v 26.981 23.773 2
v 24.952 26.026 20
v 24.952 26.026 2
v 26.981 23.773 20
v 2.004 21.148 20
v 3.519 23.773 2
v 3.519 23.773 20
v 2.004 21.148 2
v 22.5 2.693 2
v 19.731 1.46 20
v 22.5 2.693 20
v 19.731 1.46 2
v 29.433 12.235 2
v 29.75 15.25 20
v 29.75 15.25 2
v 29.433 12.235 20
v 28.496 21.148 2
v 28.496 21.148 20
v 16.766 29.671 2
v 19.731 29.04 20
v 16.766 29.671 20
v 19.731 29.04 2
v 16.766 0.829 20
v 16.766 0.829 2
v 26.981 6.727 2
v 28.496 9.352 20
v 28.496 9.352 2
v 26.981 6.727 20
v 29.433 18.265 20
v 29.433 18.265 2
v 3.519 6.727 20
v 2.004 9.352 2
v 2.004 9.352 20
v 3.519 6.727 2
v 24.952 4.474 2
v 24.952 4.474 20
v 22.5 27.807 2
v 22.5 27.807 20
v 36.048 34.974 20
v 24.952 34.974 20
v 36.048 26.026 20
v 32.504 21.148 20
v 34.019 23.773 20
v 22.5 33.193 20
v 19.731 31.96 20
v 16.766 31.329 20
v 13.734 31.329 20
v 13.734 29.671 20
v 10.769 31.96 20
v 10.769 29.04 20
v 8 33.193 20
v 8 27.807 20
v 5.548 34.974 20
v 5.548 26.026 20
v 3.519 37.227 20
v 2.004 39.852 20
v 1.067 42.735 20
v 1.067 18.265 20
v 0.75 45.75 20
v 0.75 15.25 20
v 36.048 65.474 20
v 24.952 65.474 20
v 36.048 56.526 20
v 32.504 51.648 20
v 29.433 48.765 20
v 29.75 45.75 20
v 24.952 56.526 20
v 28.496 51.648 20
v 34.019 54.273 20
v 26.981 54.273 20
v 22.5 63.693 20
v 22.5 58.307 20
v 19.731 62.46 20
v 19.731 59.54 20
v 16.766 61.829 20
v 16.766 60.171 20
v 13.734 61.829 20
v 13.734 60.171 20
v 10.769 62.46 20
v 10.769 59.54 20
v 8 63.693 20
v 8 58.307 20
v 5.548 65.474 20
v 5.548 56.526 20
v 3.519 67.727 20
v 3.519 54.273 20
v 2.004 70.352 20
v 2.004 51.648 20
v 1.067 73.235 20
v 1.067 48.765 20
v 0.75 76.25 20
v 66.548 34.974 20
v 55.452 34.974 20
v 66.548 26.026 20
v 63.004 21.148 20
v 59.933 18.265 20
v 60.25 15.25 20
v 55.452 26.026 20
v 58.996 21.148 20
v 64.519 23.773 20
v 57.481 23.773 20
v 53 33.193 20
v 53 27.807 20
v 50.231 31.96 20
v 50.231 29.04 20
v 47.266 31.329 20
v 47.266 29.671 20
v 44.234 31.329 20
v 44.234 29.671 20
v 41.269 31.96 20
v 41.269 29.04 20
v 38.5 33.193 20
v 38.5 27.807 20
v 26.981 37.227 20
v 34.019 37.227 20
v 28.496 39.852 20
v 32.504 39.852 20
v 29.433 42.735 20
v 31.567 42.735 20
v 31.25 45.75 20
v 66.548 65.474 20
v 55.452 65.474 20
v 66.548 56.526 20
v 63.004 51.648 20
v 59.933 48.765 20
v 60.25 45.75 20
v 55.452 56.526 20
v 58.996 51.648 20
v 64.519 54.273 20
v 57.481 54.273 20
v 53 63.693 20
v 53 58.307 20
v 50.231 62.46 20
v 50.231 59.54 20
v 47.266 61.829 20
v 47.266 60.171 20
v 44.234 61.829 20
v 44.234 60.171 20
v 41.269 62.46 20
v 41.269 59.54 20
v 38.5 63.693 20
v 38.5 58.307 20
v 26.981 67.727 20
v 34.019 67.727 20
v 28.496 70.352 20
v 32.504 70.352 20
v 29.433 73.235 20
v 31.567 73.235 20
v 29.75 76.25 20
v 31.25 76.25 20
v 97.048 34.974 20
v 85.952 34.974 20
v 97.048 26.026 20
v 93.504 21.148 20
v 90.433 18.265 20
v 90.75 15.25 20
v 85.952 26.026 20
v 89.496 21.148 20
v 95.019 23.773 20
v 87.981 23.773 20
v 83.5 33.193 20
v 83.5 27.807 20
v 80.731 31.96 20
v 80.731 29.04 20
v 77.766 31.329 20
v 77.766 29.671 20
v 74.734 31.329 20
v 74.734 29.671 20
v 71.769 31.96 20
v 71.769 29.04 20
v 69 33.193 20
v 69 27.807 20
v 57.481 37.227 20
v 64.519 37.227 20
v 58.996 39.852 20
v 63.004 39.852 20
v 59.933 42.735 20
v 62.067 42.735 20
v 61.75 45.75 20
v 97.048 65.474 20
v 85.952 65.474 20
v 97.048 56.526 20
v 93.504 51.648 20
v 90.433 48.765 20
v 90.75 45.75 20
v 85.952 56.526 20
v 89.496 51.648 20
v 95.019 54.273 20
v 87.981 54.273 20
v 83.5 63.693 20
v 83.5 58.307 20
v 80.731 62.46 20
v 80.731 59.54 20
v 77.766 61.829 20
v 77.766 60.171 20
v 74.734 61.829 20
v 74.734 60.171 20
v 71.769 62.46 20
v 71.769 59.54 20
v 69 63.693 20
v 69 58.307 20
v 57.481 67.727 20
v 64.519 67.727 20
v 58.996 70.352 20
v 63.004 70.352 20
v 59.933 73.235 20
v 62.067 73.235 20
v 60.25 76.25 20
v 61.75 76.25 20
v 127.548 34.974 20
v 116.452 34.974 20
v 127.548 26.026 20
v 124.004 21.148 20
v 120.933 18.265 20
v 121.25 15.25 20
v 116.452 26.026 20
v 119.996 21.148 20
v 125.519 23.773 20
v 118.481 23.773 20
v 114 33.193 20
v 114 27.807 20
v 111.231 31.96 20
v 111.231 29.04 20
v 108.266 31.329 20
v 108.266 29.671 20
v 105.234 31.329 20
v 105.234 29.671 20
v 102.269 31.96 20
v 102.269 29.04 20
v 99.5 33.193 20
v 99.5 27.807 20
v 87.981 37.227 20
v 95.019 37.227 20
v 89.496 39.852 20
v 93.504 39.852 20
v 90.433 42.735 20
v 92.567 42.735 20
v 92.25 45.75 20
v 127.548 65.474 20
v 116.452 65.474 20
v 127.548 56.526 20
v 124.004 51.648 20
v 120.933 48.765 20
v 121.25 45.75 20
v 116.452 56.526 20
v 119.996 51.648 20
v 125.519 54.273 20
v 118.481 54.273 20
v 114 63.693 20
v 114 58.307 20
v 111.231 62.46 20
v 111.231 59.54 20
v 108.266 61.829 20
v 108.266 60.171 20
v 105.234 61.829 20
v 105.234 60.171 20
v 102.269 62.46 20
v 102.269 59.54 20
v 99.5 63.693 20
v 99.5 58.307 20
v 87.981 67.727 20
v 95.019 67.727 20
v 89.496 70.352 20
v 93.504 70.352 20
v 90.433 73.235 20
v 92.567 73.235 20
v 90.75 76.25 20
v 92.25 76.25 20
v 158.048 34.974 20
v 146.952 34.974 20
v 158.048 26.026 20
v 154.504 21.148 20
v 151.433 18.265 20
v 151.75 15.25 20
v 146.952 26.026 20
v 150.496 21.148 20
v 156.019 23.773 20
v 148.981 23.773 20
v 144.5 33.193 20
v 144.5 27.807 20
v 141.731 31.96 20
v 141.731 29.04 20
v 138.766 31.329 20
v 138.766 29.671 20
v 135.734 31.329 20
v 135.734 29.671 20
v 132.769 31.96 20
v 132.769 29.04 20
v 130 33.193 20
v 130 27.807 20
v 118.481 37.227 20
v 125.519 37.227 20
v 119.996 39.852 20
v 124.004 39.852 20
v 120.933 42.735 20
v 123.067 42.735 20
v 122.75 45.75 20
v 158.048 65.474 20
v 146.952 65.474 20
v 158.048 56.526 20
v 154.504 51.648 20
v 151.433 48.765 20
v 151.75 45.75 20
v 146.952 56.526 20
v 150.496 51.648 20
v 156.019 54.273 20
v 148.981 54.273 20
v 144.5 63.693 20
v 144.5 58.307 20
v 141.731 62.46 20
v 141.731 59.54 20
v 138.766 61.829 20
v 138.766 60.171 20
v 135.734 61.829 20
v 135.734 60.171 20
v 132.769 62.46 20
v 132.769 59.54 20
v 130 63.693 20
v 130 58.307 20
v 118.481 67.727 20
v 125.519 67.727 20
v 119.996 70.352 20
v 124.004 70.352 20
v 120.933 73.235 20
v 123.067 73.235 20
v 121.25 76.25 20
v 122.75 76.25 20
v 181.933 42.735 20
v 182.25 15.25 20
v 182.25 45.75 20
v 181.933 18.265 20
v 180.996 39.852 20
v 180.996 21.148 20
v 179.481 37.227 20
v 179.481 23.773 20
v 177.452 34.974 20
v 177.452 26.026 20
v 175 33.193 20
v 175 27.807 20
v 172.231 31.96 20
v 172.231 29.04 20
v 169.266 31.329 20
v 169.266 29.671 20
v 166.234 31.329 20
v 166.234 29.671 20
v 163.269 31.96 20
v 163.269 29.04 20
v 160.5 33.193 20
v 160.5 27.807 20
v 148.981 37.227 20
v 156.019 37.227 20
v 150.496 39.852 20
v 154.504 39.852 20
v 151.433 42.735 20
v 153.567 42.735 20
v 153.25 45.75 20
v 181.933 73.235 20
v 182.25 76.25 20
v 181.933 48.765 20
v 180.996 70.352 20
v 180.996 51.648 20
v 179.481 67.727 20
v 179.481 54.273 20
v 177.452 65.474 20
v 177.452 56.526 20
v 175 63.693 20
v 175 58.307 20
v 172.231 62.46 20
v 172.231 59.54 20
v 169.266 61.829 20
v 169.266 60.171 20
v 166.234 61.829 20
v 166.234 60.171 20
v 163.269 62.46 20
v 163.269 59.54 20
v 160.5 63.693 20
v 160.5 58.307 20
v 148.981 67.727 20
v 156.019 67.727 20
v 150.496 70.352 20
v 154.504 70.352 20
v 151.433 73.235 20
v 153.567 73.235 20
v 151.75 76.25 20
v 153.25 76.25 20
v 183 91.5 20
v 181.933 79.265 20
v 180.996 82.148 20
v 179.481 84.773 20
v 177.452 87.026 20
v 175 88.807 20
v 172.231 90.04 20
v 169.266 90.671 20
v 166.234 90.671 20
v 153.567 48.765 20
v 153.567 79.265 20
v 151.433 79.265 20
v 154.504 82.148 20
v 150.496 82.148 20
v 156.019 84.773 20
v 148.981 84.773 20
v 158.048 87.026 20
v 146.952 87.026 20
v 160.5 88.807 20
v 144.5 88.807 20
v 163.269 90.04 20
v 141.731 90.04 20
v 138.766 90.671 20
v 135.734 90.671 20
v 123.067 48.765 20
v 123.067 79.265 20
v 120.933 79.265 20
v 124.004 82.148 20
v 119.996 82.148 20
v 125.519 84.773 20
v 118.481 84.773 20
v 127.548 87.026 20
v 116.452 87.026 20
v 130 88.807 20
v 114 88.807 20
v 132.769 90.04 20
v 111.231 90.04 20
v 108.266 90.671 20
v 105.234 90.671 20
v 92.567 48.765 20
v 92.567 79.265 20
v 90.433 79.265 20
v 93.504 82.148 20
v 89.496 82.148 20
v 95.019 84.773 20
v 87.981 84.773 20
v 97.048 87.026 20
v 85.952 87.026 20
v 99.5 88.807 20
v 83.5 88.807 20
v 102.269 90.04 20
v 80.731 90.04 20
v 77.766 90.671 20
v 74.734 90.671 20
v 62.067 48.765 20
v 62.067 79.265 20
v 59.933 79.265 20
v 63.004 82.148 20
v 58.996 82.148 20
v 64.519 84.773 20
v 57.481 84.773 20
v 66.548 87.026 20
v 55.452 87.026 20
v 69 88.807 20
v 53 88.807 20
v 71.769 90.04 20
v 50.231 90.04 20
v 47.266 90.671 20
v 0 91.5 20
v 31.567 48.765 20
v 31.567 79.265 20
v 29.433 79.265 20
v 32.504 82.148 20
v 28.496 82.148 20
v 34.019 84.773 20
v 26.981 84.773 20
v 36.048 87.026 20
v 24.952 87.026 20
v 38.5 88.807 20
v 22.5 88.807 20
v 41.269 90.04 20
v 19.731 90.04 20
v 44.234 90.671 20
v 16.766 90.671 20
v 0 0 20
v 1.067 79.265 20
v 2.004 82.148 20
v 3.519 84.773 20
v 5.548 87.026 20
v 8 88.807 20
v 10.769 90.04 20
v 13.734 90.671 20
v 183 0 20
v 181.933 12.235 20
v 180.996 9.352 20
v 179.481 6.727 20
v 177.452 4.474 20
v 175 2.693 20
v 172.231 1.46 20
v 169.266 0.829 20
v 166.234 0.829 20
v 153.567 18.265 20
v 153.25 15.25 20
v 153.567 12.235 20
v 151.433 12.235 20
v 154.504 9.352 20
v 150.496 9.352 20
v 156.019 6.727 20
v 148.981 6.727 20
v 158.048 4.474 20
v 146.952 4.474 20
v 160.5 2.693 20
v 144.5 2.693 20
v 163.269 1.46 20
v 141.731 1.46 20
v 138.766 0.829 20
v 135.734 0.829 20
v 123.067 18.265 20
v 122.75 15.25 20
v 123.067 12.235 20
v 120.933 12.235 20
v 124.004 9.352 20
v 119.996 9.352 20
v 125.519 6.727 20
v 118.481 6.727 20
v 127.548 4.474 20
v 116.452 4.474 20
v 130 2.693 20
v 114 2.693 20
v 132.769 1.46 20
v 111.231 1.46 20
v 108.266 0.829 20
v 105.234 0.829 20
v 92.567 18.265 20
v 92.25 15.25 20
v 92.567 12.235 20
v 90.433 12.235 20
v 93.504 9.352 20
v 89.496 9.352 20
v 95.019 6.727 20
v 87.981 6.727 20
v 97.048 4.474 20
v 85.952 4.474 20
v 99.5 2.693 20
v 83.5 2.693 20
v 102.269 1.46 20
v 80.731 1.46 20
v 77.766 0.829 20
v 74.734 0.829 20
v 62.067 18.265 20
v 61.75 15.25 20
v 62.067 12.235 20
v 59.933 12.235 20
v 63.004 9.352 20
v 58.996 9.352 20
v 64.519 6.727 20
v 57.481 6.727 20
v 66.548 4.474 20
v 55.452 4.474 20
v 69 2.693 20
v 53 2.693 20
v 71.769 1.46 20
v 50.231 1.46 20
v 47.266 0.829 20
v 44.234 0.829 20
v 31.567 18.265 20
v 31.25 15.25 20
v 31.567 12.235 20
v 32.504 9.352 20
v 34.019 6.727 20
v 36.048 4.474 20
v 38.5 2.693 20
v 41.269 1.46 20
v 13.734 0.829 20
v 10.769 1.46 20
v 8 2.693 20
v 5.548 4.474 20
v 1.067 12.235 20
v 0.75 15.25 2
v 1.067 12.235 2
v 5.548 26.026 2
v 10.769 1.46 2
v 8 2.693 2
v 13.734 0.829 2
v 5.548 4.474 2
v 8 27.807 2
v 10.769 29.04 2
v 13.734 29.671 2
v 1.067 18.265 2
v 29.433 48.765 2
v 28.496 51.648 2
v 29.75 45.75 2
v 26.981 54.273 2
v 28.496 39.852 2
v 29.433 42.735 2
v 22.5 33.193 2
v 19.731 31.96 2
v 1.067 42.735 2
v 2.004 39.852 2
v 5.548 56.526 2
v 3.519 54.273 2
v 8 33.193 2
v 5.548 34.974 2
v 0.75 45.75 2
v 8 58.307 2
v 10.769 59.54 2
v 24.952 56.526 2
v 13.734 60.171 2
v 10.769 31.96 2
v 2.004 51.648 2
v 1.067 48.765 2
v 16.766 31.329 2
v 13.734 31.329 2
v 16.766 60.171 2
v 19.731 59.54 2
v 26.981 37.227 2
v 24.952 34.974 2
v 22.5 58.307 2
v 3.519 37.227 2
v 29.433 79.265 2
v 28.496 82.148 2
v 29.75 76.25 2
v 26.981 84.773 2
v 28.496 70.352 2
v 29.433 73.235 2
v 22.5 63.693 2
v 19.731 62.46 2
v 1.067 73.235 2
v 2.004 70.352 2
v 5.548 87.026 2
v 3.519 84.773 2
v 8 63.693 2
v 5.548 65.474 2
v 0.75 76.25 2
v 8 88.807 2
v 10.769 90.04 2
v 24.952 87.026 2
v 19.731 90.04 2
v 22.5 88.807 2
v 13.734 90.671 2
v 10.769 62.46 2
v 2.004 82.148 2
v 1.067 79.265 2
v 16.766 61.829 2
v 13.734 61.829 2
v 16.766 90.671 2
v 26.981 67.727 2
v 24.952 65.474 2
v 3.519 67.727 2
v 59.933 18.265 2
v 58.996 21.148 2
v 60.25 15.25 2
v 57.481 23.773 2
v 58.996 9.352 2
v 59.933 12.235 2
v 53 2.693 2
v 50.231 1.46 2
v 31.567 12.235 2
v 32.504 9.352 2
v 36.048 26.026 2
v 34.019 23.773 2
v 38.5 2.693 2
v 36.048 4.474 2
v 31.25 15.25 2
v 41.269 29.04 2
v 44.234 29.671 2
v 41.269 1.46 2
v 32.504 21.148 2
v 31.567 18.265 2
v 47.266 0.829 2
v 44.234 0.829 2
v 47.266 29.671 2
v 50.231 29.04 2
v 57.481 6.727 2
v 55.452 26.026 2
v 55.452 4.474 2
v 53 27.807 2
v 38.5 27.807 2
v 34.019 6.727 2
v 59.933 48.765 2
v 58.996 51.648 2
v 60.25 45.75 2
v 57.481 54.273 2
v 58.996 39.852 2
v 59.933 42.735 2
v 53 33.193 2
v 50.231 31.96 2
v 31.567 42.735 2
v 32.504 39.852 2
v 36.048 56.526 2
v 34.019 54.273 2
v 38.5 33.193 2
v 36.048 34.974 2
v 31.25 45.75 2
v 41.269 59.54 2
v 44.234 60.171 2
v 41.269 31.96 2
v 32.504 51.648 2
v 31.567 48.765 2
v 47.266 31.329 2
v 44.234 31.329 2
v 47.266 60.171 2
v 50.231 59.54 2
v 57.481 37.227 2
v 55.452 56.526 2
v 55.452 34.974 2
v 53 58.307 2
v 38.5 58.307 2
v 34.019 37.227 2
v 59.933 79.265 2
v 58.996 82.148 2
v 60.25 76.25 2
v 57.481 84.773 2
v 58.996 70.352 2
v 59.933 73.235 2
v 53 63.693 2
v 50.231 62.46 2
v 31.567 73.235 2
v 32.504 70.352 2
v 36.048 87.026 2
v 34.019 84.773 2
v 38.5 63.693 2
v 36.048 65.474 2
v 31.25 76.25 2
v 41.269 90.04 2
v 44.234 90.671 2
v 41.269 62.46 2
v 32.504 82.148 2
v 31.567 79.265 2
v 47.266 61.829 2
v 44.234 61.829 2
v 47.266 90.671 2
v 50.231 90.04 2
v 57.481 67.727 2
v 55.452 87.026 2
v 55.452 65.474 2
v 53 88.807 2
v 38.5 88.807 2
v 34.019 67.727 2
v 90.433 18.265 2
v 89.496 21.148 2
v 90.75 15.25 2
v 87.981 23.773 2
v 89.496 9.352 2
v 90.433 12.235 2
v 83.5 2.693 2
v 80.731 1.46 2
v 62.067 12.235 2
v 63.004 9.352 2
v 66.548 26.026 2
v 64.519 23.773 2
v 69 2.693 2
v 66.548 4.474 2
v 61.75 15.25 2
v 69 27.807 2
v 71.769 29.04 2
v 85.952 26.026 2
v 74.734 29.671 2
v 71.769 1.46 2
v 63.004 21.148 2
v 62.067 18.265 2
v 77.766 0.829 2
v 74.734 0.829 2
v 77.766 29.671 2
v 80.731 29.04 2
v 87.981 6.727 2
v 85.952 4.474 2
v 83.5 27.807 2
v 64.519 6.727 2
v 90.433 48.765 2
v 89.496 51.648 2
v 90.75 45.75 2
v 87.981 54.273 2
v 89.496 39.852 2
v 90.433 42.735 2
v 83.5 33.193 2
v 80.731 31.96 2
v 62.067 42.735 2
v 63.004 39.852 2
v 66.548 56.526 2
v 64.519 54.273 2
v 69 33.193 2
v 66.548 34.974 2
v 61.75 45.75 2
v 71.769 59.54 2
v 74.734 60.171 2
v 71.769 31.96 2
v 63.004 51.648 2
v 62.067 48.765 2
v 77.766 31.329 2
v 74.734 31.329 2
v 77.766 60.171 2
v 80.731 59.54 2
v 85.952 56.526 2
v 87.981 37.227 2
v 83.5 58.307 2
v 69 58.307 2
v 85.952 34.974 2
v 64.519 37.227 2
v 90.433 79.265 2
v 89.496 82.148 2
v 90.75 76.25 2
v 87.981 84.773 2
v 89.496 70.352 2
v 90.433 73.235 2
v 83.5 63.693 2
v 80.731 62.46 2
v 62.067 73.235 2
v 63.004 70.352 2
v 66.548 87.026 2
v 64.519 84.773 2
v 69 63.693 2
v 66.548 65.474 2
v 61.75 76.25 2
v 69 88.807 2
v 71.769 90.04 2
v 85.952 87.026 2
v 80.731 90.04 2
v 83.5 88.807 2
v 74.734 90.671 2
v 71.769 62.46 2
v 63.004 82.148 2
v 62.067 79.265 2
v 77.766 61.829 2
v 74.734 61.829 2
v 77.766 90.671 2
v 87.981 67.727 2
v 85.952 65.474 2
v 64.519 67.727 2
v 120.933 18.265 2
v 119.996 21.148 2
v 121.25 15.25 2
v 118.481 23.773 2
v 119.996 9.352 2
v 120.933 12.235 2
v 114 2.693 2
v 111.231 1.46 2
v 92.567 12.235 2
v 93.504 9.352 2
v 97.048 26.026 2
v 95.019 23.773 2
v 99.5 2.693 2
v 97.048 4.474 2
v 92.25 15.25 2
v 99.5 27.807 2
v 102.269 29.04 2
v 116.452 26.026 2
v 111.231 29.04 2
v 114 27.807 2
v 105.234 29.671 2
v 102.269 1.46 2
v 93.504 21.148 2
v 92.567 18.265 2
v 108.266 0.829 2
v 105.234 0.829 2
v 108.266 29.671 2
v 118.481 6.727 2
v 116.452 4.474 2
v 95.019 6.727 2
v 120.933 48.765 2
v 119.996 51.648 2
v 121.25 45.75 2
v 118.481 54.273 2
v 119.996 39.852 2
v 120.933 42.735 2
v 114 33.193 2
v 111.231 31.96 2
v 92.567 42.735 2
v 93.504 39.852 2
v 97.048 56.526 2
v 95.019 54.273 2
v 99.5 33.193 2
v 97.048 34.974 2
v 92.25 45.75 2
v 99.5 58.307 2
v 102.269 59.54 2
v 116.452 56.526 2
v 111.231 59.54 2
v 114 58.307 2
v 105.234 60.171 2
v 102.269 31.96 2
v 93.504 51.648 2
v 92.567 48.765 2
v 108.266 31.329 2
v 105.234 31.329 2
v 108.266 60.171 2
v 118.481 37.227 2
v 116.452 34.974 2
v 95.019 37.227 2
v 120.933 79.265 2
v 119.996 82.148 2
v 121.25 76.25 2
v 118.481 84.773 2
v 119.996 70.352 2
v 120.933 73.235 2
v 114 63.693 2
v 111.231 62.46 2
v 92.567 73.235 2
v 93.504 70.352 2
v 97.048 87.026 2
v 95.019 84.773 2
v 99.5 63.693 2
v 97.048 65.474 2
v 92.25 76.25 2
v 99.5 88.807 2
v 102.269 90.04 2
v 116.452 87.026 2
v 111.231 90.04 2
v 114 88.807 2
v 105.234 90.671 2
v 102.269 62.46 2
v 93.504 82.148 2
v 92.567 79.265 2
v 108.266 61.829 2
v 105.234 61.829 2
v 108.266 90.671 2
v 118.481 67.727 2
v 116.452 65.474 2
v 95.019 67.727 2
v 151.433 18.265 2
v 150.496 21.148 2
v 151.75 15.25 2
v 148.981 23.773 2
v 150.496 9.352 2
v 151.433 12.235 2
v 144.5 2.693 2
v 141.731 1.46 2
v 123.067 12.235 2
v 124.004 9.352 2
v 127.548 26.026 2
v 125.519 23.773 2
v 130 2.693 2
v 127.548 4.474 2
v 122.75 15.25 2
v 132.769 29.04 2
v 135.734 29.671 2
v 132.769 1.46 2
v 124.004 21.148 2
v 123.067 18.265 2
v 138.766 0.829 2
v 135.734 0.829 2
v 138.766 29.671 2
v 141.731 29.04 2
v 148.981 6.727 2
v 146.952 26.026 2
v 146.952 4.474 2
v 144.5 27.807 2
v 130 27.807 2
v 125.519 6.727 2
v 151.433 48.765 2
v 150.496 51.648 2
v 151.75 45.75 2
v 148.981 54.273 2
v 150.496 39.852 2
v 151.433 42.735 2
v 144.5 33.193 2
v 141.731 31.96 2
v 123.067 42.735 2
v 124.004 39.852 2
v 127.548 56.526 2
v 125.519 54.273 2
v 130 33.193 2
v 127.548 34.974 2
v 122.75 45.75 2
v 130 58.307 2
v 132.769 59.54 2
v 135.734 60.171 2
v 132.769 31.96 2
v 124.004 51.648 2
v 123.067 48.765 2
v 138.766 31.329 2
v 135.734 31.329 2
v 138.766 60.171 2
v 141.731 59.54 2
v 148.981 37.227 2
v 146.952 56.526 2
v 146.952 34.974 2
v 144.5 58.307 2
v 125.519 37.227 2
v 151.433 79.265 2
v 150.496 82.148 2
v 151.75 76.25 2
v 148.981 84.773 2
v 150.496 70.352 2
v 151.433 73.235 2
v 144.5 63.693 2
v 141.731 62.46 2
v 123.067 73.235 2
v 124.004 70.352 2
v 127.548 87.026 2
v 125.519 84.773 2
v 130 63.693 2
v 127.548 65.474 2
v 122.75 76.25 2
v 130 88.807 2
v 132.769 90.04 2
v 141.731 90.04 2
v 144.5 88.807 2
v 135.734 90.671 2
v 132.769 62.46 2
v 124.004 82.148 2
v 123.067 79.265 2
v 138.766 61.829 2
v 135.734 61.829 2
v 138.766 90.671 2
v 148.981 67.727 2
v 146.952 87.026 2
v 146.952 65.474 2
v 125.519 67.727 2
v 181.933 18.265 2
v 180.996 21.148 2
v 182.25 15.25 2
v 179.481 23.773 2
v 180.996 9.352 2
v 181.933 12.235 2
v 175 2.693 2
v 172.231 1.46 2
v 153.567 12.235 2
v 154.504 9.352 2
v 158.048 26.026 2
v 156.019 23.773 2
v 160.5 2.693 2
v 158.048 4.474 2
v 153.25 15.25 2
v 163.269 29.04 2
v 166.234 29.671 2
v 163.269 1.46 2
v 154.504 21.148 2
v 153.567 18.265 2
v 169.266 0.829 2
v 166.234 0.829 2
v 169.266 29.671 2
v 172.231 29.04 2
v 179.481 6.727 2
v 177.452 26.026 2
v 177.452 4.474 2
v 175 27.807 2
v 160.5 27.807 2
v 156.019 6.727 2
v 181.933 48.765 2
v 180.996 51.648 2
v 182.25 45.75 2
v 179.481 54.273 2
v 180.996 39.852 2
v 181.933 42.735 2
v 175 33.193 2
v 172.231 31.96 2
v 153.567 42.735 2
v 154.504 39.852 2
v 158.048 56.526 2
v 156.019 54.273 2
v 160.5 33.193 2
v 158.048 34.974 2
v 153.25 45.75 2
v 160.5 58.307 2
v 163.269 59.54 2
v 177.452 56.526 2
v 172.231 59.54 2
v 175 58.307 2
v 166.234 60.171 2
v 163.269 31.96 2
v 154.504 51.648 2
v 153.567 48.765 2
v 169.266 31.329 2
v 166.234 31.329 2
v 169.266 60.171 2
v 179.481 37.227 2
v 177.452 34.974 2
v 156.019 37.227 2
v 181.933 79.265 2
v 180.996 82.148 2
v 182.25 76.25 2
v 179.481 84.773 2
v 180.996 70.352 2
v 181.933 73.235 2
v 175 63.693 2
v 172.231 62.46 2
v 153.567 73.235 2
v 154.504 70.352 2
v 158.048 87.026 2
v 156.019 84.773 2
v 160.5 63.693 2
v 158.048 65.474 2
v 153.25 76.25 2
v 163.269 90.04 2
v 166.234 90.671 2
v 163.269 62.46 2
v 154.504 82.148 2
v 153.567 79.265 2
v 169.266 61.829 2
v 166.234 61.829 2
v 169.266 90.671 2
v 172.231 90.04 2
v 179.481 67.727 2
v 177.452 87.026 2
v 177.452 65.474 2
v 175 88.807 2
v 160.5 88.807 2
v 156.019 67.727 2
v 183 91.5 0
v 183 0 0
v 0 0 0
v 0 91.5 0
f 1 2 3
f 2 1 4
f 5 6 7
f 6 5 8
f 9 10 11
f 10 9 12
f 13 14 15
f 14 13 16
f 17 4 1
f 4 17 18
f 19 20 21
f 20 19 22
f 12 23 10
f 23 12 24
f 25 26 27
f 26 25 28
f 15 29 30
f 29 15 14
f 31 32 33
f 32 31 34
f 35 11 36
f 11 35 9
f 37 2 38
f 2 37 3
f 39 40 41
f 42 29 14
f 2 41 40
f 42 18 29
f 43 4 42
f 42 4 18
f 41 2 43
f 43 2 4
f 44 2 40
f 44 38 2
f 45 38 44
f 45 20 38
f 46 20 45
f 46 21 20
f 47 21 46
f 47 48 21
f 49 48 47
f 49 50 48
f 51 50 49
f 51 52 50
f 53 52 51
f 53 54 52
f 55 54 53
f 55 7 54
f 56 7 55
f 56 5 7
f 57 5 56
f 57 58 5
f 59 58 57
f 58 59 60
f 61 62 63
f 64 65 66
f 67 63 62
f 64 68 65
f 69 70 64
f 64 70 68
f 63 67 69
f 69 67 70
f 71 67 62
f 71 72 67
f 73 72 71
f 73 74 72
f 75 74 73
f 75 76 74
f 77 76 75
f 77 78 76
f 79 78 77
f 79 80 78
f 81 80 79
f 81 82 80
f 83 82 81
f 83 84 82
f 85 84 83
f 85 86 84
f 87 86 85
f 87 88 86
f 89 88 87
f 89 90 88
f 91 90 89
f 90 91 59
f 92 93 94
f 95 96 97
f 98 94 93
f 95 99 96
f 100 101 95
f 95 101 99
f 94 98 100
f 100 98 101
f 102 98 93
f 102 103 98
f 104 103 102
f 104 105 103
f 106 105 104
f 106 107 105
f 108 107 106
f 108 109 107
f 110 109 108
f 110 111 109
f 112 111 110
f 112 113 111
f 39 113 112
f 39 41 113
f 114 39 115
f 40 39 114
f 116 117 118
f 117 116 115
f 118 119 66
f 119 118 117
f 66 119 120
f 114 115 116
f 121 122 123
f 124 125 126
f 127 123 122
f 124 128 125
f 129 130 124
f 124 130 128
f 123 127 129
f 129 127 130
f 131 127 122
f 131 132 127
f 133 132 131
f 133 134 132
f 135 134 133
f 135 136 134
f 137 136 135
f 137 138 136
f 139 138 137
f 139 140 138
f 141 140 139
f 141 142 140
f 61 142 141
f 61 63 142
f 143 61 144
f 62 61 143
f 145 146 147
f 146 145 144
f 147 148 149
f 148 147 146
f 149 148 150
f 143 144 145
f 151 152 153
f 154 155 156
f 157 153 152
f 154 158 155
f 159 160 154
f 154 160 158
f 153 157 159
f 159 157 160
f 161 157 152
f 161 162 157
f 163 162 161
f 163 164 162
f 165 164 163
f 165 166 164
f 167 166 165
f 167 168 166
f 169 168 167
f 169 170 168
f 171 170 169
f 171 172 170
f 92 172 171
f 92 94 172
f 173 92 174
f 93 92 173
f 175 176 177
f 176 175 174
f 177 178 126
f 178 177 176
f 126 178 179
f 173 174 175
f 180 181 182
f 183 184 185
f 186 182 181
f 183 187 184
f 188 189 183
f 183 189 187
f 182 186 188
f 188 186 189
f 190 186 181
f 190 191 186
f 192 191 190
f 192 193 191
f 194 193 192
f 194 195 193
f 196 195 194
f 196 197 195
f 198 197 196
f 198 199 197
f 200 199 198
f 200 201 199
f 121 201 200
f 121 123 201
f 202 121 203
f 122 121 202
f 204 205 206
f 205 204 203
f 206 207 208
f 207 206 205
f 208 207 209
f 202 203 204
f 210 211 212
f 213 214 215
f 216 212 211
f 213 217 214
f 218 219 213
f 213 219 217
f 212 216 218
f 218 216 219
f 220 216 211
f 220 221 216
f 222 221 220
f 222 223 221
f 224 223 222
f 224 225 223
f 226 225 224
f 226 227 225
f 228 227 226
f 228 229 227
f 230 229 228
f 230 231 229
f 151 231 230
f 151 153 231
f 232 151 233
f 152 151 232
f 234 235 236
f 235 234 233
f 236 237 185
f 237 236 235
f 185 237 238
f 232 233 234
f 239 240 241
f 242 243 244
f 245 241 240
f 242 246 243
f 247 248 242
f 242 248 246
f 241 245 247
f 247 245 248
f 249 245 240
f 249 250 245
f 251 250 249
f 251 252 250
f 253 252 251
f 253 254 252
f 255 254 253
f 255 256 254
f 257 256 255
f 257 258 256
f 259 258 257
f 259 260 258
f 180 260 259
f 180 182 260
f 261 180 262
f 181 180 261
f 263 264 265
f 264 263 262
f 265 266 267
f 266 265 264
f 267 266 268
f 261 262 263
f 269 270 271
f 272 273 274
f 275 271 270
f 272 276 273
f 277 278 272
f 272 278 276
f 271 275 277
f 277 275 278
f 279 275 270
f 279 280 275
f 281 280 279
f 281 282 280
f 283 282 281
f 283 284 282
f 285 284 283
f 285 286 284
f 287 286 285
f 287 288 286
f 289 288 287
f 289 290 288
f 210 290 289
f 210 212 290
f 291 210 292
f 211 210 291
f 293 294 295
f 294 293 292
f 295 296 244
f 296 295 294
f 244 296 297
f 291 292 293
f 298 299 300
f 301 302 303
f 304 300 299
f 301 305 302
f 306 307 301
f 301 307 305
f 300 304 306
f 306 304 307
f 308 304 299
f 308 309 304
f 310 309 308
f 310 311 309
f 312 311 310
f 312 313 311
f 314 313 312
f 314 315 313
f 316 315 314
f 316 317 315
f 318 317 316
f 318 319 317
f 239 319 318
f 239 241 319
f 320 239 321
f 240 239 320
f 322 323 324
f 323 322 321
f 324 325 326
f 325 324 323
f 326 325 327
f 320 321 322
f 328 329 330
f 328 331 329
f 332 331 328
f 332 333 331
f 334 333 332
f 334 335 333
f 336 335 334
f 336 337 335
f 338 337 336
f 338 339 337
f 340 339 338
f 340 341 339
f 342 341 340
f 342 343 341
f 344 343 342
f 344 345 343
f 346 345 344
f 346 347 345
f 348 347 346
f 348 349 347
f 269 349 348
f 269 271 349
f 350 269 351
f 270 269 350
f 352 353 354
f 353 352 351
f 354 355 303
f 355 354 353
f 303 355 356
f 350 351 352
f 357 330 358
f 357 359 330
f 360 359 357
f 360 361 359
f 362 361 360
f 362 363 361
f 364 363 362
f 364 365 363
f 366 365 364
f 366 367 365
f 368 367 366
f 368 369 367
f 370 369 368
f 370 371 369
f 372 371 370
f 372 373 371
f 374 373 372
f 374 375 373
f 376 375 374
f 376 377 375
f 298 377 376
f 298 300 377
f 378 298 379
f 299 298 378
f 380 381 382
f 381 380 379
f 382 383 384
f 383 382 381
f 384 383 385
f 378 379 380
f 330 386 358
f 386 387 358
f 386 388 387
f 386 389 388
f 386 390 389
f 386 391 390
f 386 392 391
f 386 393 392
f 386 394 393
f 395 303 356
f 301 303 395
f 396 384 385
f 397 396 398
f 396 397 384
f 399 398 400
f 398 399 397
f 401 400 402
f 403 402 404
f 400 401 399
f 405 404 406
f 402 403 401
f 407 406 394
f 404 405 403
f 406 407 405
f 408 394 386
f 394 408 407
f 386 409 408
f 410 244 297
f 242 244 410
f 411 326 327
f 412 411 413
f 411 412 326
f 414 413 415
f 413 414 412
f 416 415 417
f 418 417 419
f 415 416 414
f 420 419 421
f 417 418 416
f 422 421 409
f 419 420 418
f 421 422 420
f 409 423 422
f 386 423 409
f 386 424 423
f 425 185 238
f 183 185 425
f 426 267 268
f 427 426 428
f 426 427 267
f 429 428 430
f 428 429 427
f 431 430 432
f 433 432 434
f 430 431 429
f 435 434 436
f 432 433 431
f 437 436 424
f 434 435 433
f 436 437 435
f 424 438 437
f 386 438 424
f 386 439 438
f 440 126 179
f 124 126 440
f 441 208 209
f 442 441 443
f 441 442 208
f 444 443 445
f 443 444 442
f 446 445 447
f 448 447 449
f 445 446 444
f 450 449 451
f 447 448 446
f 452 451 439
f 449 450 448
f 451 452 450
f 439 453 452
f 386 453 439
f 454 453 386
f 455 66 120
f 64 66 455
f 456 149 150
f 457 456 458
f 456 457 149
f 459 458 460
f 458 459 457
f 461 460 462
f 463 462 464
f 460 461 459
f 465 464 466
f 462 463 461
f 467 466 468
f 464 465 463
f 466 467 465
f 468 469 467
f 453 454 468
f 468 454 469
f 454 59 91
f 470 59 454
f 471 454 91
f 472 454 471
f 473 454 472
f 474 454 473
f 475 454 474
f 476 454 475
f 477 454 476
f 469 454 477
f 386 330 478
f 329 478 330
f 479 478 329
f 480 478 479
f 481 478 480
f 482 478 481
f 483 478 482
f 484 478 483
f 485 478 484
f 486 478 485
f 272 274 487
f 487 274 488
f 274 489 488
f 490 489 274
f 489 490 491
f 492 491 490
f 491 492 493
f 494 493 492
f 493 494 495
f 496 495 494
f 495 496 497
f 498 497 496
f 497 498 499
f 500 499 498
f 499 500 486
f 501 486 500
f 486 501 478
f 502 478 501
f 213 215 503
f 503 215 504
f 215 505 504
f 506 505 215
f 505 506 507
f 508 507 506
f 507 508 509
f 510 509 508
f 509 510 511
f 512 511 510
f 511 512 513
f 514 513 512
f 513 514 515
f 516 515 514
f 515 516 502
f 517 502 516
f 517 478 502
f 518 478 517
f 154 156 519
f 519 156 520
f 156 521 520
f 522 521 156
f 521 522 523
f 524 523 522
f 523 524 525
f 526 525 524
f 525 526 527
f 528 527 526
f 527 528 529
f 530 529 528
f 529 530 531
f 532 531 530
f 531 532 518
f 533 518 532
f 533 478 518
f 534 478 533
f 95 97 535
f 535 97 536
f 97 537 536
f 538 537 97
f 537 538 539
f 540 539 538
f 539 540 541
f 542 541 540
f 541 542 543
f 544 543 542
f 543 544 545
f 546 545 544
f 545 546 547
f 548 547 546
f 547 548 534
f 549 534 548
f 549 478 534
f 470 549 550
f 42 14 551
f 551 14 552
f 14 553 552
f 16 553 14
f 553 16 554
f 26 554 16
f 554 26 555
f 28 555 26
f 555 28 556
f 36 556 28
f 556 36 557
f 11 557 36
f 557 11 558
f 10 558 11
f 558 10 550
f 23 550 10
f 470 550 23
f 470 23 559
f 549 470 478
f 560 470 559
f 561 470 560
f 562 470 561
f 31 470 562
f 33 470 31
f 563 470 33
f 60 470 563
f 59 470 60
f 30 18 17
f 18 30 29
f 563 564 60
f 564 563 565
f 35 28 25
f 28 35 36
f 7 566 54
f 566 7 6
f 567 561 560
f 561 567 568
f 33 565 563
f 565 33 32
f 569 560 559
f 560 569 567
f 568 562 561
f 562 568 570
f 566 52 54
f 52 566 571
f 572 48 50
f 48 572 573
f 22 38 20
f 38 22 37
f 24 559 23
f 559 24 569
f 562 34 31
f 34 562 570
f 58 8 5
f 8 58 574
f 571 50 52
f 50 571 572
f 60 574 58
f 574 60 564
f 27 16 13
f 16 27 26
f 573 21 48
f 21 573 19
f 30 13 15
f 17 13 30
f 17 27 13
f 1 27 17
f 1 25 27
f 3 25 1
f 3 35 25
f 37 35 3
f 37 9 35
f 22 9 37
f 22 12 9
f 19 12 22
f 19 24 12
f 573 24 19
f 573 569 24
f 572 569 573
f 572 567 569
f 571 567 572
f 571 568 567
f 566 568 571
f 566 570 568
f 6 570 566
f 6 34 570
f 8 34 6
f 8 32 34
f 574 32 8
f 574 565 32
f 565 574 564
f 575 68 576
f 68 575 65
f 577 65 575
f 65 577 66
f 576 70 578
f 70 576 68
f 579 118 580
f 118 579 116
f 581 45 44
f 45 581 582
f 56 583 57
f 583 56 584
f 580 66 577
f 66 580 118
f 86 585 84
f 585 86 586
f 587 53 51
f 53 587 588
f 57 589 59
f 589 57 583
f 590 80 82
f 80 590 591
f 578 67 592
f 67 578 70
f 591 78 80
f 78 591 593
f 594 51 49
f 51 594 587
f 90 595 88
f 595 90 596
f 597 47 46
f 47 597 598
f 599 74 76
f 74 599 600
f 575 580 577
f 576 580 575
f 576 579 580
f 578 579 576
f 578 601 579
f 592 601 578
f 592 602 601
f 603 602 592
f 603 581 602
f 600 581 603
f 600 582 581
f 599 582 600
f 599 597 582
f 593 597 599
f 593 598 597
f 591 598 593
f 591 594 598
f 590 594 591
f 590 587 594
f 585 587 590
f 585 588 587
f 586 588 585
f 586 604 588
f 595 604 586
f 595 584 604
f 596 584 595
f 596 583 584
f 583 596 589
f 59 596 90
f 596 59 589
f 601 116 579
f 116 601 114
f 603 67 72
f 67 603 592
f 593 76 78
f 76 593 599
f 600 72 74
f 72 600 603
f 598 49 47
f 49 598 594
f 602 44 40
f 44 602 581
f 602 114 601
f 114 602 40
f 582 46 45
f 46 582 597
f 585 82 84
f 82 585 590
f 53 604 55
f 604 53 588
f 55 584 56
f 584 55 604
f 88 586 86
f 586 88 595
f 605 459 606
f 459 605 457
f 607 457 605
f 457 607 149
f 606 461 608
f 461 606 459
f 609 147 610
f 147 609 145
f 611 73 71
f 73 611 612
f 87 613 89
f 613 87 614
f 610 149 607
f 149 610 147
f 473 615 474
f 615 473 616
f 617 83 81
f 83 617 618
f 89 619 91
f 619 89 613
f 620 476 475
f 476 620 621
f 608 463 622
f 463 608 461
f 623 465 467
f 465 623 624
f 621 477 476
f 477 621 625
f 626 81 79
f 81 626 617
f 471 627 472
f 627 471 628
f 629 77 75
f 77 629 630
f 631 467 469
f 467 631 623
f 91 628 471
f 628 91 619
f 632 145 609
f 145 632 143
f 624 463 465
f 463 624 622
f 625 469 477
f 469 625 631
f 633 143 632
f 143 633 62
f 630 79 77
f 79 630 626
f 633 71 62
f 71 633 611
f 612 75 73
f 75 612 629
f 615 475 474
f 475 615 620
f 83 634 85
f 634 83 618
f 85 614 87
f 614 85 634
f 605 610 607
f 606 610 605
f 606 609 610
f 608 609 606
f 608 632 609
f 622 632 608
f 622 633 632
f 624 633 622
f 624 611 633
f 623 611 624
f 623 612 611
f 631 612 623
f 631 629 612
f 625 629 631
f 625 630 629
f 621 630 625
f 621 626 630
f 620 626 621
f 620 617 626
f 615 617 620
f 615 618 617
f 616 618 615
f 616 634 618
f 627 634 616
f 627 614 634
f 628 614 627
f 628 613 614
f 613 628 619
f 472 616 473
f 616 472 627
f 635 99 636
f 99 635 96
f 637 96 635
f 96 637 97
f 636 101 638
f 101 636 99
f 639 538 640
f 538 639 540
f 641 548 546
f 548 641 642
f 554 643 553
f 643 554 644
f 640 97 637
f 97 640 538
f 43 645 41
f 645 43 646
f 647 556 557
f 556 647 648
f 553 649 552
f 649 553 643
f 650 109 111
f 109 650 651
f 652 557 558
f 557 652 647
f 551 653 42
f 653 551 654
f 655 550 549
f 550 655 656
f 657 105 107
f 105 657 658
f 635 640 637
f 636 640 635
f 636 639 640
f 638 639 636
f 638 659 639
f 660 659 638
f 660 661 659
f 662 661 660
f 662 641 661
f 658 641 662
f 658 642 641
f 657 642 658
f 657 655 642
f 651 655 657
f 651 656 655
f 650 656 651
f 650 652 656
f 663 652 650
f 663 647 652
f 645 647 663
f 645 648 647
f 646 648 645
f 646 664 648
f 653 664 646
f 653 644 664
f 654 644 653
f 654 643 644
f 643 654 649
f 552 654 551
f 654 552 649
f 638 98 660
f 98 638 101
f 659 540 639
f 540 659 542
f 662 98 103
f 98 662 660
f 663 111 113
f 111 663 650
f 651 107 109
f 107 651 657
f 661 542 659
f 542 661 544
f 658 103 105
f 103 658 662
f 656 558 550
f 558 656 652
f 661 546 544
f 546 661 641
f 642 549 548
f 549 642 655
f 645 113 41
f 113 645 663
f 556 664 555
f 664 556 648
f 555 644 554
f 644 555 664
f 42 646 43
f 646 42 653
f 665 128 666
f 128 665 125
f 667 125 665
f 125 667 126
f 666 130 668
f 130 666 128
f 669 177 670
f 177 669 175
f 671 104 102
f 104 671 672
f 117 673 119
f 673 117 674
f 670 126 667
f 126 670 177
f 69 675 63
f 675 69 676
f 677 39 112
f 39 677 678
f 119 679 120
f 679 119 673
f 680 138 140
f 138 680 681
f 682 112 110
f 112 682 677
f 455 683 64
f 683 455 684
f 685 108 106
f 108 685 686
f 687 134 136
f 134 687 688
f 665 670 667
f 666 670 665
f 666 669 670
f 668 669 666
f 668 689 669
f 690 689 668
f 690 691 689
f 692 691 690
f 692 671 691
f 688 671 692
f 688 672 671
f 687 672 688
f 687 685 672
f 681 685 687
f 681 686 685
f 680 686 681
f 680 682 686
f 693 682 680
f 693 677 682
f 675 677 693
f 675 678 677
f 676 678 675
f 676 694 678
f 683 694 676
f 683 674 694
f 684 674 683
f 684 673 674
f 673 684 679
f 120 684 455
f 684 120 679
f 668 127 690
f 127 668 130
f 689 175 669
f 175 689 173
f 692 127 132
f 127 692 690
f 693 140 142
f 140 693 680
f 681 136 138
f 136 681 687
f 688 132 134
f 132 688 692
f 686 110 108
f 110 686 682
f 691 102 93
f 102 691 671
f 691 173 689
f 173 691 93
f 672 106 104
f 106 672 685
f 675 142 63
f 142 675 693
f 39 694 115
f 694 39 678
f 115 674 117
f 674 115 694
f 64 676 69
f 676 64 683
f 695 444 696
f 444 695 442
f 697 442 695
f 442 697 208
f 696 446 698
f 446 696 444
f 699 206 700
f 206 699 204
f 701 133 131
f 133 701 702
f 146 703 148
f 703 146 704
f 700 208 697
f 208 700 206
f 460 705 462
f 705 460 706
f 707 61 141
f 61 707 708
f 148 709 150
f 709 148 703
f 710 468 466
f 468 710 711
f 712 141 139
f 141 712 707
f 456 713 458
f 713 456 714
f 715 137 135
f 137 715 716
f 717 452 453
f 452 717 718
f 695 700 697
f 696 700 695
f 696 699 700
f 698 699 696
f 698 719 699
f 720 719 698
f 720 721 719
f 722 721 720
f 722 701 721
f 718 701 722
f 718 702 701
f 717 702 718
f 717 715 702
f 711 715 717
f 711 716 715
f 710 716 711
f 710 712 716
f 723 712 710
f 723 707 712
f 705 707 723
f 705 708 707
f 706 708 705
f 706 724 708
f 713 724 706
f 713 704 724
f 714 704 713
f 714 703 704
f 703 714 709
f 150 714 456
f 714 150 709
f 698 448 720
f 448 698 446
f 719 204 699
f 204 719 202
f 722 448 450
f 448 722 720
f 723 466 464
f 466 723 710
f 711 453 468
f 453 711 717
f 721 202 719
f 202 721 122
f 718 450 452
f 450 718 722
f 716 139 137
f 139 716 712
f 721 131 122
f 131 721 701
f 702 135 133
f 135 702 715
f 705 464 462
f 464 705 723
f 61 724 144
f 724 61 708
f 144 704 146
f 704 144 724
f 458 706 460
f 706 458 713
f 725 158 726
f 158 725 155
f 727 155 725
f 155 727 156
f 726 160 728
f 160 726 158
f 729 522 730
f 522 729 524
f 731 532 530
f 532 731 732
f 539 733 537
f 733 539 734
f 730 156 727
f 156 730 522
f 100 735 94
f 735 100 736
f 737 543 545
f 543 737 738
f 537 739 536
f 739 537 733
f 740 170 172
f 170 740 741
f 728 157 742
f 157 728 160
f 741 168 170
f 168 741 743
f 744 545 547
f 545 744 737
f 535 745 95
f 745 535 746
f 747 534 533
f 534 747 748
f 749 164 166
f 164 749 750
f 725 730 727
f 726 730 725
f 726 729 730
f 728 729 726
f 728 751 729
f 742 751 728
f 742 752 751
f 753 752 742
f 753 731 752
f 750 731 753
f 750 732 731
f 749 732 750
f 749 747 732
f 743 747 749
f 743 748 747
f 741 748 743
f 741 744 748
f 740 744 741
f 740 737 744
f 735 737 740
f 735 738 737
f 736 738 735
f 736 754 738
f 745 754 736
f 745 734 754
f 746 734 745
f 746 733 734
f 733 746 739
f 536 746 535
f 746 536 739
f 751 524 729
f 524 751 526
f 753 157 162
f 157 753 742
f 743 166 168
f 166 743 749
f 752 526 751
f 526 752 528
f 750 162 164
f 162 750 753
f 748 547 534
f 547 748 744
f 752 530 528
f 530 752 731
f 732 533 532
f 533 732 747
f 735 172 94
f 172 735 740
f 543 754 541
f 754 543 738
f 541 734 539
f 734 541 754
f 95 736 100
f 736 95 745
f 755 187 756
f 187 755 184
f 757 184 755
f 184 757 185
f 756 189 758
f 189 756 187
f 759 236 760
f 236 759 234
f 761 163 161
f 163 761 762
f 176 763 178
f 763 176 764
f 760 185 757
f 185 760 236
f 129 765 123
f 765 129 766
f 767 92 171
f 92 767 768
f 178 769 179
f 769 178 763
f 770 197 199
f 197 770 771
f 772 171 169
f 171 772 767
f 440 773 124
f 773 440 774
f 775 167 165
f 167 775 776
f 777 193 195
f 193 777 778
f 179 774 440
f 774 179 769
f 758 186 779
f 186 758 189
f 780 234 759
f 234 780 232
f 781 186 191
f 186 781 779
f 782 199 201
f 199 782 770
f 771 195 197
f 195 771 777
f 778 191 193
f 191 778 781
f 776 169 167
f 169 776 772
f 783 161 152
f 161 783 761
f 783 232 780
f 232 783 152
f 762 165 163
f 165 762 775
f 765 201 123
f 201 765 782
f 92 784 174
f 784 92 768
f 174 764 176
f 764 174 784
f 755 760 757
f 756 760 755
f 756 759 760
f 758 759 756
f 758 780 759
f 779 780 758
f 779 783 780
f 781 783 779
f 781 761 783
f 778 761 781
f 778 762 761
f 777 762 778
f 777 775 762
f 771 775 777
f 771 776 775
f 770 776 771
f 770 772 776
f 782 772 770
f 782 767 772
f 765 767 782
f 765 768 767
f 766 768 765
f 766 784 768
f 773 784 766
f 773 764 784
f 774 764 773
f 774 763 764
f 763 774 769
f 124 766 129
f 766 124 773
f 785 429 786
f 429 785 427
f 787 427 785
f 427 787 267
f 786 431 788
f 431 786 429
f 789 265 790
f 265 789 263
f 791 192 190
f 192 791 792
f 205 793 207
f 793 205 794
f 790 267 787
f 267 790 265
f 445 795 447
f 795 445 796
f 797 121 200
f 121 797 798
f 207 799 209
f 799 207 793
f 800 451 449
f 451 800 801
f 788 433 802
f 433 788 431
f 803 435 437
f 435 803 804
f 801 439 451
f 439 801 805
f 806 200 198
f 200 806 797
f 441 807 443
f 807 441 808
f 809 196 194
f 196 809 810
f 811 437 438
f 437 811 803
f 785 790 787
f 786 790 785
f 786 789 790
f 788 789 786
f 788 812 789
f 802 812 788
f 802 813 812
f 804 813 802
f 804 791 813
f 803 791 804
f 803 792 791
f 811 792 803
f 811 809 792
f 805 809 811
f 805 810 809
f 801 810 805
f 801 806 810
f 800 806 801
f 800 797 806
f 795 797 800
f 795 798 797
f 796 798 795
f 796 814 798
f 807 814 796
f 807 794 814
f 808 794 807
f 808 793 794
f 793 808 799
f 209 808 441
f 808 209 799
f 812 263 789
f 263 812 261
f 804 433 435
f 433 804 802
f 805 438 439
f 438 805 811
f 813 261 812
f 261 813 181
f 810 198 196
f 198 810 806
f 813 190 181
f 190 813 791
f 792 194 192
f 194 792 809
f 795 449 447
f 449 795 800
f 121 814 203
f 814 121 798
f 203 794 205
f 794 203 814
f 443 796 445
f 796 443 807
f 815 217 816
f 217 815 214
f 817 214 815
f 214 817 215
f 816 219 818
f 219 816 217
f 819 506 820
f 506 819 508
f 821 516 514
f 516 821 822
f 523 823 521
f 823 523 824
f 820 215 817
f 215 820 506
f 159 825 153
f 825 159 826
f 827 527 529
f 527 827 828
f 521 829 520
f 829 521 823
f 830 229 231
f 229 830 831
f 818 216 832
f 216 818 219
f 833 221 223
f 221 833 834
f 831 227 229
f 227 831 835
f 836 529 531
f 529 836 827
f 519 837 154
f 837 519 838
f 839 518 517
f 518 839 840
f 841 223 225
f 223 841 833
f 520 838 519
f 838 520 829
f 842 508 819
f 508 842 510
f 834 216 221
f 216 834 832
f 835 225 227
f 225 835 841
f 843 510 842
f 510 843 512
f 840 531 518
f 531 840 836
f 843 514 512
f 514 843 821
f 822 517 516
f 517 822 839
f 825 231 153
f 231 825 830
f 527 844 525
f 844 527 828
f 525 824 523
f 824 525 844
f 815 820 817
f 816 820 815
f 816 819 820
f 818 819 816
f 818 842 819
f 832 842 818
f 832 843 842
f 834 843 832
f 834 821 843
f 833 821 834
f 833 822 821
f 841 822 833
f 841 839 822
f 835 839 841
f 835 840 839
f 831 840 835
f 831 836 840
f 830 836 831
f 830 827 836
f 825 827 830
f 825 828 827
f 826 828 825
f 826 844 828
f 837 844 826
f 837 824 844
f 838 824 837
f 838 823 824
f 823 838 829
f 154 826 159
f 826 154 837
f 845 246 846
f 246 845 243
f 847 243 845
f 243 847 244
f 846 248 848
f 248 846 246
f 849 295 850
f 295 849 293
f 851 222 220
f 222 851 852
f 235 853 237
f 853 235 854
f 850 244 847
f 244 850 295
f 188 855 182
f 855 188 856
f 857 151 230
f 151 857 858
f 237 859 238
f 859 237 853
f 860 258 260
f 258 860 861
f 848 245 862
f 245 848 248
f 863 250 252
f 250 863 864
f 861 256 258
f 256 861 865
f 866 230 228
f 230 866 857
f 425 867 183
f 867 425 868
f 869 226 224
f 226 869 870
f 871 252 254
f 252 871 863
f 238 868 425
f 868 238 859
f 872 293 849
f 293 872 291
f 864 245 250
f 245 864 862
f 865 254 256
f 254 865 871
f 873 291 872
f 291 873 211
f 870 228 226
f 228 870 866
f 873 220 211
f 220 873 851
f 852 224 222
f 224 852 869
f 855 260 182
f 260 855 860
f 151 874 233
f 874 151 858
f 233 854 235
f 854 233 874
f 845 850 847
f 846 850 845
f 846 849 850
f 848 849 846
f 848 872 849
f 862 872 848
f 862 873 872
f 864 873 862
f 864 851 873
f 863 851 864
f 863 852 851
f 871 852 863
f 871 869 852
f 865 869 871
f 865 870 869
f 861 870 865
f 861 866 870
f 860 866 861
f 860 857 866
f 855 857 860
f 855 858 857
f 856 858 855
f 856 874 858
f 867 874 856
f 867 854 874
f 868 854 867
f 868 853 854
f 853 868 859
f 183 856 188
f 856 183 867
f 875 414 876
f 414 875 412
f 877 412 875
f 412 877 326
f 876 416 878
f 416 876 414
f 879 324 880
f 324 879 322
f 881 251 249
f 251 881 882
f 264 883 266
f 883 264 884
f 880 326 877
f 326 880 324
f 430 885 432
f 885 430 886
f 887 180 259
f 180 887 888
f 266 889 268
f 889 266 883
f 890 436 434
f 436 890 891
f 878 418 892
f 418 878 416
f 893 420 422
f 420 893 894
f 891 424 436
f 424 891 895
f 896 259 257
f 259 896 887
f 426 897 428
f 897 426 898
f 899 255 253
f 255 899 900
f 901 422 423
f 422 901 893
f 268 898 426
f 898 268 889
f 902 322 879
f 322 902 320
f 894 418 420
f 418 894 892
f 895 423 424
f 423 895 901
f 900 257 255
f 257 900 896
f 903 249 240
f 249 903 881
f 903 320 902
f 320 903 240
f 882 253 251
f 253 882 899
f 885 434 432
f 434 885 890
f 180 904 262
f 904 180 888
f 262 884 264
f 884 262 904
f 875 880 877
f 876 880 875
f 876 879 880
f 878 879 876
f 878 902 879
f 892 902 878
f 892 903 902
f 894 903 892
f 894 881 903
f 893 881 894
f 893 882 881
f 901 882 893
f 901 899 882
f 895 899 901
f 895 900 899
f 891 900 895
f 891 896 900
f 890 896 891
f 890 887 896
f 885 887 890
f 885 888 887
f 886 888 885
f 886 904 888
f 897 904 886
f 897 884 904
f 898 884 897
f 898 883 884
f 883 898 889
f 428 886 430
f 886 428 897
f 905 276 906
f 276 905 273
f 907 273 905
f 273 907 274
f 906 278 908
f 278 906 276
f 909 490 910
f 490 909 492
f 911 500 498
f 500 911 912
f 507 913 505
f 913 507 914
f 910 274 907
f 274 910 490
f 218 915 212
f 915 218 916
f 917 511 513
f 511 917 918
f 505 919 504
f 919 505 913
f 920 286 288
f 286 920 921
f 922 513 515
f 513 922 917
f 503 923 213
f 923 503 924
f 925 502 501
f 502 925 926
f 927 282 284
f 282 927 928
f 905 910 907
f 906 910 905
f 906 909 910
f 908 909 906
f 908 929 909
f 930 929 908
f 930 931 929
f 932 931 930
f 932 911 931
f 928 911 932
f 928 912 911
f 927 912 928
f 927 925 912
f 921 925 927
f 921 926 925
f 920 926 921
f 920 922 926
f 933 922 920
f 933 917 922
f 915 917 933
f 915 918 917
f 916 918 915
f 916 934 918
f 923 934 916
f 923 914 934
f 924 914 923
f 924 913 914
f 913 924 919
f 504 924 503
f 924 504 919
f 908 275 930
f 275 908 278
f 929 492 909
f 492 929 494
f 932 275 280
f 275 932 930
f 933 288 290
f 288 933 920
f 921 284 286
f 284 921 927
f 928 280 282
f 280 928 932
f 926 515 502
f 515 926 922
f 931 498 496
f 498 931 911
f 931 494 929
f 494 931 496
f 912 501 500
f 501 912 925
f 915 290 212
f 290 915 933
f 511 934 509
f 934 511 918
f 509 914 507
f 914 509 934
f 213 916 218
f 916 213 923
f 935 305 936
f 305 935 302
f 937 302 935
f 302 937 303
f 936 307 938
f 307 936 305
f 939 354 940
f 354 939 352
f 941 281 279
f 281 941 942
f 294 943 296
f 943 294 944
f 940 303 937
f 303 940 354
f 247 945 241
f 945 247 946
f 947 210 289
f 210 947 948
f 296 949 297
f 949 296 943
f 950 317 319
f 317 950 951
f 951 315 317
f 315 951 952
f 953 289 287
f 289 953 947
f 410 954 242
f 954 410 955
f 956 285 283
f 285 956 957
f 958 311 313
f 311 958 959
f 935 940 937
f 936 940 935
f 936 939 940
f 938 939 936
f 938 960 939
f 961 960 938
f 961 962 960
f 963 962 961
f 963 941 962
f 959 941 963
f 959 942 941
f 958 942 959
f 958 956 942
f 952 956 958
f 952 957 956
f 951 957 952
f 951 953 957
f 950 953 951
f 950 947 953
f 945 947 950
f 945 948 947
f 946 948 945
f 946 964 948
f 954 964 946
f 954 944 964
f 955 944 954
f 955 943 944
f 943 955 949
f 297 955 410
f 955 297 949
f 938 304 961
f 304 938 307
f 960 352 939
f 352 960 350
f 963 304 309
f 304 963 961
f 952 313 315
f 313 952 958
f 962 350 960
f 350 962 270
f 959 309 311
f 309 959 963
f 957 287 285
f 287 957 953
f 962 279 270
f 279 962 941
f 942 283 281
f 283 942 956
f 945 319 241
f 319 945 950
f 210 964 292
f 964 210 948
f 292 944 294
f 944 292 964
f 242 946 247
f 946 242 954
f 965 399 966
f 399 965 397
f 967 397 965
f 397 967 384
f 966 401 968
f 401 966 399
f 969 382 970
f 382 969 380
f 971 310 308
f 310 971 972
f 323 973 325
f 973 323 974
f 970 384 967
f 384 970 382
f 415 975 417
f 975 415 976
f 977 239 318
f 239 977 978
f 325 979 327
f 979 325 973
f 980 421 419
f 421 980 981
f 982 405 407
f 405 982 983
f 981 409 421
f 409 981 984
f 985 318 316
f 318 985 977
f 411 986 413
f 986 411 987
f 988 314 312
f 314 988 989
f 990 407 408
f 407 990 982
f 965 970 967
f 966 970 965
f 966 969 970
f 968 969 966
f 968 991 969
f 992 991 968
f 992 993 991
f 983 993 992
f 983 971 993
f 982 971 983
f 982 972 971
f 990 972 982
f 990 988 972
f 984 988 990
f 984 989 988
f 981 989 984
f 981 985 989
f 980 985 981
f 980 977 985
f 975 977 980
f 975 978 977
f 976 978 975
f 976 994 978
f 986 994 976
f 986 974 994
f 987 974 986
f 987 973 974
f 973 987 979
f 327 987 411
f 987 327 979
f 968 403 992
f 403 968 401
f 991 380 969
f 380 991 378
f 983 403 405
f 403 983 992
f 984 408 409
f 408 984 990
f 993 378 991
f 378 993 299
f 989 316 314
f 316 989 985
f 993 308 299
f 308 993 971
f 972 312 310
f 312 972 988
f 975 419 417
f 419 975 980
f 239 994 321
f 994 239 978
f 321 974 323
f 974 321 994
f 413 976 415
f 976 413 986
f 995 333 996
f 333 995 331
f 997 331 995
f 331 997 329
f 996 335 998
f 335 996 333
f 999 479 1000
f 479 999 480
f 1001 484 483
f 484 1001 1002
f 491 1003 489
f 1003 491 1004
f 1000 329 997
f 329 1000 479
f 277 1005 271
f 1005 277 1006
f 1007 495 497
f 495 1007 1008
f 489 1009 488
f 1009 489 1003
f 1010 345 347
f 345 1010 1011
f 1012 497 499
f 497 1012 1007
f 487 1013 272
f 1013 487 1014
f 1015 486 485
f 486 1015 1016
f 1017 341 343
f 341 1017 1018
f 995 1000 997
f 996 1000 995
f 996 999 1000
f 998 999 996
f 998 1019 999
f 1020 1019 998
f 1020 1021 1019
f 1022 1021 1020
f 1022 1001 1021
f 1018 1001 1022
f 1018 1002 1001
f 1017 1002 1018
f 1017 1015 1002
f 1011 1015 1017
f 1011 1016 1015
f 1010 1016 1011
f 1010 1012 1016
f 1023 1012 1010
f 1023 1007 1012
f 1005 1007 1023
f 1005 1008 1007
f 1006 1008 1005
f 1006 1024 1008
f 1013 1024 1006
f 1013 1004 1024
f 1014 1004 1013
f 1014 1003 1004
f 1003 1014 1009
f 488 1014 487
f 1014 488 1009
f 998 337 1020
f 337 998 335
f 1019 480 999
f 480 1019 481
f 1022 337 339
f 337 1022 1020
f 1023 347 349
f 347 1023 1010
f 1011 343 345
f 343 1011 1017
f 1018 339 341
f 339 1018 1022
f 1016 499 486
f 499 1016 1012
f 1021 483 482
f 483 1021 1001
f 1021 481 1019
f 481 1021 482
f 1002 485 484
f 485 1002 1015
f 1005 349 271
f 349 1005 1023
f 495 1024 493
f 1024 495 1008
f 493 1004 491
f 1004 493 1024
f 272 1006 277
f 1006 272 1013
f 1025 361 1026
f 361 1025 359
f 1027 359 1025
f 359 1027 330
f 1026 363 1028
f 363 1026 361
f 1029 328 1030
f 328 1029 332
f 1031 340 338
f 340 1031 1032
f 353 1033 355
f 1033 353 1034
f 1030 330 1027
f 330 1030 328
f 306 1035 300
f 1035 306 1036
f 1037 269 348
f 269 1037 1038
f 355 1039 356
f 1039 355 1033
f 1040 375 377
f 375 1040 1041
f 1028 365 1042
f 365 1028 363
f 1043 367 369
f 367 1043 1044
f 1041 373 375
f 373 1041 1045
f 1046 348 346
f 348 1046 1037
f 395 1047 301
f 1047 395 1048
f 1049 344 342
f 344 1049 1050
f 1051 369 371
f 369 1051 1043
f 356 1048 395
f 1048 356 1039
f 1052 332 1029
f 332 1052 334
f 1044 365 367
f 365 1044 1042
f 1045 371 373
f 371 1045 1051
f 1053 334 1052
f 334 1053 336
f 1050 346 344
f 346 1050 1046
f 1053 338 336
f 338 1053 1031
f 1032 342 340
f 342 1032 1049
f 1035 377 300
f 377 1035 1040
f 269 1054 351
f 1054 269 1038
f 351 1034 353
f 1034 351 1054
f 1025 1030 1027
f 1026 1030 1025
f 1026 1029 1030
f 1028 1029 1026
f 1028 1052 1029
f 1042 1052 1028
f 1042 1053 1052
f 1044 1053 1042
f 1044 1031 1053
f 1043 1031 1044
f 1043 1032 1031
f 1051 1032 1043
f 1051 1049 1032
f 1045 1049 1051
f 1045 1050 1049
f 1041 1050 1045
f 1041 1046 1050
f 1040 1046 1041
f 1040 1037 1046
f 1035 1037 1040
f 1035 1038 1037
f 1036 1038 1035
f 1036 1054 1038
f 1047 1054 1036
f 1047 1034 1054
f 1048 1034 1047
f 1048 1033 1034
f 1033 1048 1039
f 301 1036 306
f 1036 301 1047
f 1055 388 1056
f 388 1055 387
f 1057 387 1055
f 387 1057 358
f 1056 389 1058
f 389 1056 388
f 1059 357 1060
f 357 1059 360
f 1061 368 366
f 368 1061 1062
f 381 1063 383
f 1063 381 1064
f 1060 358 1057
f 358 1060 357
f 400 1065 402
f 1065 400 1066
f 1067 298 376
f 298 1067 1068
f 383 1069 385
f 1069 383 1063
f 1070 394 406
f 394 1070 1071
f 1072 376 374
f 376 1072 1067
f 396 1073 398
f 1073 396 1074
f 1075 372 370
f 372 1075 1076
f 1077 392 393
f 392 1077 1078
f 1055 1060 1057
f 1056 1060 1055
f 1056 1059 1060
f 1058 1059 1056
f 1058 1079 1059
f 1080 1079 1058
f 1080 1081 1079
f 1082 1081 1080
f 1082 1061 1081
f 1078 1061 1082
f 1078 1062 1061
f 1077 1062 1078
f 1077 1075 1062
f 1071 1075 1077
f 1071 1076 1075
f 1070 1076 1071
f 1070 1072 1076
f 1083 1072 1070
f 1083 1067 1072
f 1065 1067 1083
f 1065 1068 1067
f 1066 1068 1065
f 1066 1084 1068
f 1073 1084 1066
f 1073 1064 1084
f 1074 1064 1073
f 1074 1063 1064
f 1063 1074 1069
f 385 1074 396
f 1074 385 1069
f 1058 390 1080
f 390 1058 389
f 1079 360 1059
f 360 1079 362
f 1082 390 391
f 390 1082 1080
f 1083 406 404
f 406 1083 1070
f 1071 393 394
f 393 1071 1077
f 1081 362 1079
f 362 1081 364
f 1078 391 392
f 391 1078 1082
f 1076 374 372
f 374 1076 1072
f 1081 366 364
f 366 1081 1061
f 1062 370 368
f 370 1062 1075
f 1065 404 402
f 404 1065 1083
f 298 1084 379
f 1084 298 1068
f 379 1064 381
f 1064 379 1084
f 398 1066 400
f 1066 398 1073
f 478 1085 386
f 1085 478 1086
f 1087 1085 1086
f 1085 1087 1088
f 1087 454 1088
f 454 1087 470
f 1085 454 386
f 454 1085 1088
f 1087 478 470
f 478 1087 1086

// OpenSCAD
H=20;
W=210;
L=35;
F=2;
WALL=1.5;

module unit(nx,ny,d) {
    difference() {
        box(nx,ny,d);
        holes(nx,ny,d);
    }
}


module holes(nx,ny,d) {
    voff = (d+WALL)/2;
    voff2 = voff*2;
    bottom_offset=(L-d)/2;
    for (i=[0:nx-1]) {
        for (j=[0:ny-1]) {
            #translate([voff+voff2*i,voff+voff2*j,F]) cylinder(H-F,d=d);
            //#translate([d/2+WALL+(WALL+d)*i,d/2+bottom_offset,F]) cylinder(H-F,d=d);
        }
    }
}

module box(nx,ny,d) {
    voff = (d+WALL)/2;
    voff2 = voff*2;
    cube([voff2*nx,voff2*ny,H]);
}


unit(6,3,29);
